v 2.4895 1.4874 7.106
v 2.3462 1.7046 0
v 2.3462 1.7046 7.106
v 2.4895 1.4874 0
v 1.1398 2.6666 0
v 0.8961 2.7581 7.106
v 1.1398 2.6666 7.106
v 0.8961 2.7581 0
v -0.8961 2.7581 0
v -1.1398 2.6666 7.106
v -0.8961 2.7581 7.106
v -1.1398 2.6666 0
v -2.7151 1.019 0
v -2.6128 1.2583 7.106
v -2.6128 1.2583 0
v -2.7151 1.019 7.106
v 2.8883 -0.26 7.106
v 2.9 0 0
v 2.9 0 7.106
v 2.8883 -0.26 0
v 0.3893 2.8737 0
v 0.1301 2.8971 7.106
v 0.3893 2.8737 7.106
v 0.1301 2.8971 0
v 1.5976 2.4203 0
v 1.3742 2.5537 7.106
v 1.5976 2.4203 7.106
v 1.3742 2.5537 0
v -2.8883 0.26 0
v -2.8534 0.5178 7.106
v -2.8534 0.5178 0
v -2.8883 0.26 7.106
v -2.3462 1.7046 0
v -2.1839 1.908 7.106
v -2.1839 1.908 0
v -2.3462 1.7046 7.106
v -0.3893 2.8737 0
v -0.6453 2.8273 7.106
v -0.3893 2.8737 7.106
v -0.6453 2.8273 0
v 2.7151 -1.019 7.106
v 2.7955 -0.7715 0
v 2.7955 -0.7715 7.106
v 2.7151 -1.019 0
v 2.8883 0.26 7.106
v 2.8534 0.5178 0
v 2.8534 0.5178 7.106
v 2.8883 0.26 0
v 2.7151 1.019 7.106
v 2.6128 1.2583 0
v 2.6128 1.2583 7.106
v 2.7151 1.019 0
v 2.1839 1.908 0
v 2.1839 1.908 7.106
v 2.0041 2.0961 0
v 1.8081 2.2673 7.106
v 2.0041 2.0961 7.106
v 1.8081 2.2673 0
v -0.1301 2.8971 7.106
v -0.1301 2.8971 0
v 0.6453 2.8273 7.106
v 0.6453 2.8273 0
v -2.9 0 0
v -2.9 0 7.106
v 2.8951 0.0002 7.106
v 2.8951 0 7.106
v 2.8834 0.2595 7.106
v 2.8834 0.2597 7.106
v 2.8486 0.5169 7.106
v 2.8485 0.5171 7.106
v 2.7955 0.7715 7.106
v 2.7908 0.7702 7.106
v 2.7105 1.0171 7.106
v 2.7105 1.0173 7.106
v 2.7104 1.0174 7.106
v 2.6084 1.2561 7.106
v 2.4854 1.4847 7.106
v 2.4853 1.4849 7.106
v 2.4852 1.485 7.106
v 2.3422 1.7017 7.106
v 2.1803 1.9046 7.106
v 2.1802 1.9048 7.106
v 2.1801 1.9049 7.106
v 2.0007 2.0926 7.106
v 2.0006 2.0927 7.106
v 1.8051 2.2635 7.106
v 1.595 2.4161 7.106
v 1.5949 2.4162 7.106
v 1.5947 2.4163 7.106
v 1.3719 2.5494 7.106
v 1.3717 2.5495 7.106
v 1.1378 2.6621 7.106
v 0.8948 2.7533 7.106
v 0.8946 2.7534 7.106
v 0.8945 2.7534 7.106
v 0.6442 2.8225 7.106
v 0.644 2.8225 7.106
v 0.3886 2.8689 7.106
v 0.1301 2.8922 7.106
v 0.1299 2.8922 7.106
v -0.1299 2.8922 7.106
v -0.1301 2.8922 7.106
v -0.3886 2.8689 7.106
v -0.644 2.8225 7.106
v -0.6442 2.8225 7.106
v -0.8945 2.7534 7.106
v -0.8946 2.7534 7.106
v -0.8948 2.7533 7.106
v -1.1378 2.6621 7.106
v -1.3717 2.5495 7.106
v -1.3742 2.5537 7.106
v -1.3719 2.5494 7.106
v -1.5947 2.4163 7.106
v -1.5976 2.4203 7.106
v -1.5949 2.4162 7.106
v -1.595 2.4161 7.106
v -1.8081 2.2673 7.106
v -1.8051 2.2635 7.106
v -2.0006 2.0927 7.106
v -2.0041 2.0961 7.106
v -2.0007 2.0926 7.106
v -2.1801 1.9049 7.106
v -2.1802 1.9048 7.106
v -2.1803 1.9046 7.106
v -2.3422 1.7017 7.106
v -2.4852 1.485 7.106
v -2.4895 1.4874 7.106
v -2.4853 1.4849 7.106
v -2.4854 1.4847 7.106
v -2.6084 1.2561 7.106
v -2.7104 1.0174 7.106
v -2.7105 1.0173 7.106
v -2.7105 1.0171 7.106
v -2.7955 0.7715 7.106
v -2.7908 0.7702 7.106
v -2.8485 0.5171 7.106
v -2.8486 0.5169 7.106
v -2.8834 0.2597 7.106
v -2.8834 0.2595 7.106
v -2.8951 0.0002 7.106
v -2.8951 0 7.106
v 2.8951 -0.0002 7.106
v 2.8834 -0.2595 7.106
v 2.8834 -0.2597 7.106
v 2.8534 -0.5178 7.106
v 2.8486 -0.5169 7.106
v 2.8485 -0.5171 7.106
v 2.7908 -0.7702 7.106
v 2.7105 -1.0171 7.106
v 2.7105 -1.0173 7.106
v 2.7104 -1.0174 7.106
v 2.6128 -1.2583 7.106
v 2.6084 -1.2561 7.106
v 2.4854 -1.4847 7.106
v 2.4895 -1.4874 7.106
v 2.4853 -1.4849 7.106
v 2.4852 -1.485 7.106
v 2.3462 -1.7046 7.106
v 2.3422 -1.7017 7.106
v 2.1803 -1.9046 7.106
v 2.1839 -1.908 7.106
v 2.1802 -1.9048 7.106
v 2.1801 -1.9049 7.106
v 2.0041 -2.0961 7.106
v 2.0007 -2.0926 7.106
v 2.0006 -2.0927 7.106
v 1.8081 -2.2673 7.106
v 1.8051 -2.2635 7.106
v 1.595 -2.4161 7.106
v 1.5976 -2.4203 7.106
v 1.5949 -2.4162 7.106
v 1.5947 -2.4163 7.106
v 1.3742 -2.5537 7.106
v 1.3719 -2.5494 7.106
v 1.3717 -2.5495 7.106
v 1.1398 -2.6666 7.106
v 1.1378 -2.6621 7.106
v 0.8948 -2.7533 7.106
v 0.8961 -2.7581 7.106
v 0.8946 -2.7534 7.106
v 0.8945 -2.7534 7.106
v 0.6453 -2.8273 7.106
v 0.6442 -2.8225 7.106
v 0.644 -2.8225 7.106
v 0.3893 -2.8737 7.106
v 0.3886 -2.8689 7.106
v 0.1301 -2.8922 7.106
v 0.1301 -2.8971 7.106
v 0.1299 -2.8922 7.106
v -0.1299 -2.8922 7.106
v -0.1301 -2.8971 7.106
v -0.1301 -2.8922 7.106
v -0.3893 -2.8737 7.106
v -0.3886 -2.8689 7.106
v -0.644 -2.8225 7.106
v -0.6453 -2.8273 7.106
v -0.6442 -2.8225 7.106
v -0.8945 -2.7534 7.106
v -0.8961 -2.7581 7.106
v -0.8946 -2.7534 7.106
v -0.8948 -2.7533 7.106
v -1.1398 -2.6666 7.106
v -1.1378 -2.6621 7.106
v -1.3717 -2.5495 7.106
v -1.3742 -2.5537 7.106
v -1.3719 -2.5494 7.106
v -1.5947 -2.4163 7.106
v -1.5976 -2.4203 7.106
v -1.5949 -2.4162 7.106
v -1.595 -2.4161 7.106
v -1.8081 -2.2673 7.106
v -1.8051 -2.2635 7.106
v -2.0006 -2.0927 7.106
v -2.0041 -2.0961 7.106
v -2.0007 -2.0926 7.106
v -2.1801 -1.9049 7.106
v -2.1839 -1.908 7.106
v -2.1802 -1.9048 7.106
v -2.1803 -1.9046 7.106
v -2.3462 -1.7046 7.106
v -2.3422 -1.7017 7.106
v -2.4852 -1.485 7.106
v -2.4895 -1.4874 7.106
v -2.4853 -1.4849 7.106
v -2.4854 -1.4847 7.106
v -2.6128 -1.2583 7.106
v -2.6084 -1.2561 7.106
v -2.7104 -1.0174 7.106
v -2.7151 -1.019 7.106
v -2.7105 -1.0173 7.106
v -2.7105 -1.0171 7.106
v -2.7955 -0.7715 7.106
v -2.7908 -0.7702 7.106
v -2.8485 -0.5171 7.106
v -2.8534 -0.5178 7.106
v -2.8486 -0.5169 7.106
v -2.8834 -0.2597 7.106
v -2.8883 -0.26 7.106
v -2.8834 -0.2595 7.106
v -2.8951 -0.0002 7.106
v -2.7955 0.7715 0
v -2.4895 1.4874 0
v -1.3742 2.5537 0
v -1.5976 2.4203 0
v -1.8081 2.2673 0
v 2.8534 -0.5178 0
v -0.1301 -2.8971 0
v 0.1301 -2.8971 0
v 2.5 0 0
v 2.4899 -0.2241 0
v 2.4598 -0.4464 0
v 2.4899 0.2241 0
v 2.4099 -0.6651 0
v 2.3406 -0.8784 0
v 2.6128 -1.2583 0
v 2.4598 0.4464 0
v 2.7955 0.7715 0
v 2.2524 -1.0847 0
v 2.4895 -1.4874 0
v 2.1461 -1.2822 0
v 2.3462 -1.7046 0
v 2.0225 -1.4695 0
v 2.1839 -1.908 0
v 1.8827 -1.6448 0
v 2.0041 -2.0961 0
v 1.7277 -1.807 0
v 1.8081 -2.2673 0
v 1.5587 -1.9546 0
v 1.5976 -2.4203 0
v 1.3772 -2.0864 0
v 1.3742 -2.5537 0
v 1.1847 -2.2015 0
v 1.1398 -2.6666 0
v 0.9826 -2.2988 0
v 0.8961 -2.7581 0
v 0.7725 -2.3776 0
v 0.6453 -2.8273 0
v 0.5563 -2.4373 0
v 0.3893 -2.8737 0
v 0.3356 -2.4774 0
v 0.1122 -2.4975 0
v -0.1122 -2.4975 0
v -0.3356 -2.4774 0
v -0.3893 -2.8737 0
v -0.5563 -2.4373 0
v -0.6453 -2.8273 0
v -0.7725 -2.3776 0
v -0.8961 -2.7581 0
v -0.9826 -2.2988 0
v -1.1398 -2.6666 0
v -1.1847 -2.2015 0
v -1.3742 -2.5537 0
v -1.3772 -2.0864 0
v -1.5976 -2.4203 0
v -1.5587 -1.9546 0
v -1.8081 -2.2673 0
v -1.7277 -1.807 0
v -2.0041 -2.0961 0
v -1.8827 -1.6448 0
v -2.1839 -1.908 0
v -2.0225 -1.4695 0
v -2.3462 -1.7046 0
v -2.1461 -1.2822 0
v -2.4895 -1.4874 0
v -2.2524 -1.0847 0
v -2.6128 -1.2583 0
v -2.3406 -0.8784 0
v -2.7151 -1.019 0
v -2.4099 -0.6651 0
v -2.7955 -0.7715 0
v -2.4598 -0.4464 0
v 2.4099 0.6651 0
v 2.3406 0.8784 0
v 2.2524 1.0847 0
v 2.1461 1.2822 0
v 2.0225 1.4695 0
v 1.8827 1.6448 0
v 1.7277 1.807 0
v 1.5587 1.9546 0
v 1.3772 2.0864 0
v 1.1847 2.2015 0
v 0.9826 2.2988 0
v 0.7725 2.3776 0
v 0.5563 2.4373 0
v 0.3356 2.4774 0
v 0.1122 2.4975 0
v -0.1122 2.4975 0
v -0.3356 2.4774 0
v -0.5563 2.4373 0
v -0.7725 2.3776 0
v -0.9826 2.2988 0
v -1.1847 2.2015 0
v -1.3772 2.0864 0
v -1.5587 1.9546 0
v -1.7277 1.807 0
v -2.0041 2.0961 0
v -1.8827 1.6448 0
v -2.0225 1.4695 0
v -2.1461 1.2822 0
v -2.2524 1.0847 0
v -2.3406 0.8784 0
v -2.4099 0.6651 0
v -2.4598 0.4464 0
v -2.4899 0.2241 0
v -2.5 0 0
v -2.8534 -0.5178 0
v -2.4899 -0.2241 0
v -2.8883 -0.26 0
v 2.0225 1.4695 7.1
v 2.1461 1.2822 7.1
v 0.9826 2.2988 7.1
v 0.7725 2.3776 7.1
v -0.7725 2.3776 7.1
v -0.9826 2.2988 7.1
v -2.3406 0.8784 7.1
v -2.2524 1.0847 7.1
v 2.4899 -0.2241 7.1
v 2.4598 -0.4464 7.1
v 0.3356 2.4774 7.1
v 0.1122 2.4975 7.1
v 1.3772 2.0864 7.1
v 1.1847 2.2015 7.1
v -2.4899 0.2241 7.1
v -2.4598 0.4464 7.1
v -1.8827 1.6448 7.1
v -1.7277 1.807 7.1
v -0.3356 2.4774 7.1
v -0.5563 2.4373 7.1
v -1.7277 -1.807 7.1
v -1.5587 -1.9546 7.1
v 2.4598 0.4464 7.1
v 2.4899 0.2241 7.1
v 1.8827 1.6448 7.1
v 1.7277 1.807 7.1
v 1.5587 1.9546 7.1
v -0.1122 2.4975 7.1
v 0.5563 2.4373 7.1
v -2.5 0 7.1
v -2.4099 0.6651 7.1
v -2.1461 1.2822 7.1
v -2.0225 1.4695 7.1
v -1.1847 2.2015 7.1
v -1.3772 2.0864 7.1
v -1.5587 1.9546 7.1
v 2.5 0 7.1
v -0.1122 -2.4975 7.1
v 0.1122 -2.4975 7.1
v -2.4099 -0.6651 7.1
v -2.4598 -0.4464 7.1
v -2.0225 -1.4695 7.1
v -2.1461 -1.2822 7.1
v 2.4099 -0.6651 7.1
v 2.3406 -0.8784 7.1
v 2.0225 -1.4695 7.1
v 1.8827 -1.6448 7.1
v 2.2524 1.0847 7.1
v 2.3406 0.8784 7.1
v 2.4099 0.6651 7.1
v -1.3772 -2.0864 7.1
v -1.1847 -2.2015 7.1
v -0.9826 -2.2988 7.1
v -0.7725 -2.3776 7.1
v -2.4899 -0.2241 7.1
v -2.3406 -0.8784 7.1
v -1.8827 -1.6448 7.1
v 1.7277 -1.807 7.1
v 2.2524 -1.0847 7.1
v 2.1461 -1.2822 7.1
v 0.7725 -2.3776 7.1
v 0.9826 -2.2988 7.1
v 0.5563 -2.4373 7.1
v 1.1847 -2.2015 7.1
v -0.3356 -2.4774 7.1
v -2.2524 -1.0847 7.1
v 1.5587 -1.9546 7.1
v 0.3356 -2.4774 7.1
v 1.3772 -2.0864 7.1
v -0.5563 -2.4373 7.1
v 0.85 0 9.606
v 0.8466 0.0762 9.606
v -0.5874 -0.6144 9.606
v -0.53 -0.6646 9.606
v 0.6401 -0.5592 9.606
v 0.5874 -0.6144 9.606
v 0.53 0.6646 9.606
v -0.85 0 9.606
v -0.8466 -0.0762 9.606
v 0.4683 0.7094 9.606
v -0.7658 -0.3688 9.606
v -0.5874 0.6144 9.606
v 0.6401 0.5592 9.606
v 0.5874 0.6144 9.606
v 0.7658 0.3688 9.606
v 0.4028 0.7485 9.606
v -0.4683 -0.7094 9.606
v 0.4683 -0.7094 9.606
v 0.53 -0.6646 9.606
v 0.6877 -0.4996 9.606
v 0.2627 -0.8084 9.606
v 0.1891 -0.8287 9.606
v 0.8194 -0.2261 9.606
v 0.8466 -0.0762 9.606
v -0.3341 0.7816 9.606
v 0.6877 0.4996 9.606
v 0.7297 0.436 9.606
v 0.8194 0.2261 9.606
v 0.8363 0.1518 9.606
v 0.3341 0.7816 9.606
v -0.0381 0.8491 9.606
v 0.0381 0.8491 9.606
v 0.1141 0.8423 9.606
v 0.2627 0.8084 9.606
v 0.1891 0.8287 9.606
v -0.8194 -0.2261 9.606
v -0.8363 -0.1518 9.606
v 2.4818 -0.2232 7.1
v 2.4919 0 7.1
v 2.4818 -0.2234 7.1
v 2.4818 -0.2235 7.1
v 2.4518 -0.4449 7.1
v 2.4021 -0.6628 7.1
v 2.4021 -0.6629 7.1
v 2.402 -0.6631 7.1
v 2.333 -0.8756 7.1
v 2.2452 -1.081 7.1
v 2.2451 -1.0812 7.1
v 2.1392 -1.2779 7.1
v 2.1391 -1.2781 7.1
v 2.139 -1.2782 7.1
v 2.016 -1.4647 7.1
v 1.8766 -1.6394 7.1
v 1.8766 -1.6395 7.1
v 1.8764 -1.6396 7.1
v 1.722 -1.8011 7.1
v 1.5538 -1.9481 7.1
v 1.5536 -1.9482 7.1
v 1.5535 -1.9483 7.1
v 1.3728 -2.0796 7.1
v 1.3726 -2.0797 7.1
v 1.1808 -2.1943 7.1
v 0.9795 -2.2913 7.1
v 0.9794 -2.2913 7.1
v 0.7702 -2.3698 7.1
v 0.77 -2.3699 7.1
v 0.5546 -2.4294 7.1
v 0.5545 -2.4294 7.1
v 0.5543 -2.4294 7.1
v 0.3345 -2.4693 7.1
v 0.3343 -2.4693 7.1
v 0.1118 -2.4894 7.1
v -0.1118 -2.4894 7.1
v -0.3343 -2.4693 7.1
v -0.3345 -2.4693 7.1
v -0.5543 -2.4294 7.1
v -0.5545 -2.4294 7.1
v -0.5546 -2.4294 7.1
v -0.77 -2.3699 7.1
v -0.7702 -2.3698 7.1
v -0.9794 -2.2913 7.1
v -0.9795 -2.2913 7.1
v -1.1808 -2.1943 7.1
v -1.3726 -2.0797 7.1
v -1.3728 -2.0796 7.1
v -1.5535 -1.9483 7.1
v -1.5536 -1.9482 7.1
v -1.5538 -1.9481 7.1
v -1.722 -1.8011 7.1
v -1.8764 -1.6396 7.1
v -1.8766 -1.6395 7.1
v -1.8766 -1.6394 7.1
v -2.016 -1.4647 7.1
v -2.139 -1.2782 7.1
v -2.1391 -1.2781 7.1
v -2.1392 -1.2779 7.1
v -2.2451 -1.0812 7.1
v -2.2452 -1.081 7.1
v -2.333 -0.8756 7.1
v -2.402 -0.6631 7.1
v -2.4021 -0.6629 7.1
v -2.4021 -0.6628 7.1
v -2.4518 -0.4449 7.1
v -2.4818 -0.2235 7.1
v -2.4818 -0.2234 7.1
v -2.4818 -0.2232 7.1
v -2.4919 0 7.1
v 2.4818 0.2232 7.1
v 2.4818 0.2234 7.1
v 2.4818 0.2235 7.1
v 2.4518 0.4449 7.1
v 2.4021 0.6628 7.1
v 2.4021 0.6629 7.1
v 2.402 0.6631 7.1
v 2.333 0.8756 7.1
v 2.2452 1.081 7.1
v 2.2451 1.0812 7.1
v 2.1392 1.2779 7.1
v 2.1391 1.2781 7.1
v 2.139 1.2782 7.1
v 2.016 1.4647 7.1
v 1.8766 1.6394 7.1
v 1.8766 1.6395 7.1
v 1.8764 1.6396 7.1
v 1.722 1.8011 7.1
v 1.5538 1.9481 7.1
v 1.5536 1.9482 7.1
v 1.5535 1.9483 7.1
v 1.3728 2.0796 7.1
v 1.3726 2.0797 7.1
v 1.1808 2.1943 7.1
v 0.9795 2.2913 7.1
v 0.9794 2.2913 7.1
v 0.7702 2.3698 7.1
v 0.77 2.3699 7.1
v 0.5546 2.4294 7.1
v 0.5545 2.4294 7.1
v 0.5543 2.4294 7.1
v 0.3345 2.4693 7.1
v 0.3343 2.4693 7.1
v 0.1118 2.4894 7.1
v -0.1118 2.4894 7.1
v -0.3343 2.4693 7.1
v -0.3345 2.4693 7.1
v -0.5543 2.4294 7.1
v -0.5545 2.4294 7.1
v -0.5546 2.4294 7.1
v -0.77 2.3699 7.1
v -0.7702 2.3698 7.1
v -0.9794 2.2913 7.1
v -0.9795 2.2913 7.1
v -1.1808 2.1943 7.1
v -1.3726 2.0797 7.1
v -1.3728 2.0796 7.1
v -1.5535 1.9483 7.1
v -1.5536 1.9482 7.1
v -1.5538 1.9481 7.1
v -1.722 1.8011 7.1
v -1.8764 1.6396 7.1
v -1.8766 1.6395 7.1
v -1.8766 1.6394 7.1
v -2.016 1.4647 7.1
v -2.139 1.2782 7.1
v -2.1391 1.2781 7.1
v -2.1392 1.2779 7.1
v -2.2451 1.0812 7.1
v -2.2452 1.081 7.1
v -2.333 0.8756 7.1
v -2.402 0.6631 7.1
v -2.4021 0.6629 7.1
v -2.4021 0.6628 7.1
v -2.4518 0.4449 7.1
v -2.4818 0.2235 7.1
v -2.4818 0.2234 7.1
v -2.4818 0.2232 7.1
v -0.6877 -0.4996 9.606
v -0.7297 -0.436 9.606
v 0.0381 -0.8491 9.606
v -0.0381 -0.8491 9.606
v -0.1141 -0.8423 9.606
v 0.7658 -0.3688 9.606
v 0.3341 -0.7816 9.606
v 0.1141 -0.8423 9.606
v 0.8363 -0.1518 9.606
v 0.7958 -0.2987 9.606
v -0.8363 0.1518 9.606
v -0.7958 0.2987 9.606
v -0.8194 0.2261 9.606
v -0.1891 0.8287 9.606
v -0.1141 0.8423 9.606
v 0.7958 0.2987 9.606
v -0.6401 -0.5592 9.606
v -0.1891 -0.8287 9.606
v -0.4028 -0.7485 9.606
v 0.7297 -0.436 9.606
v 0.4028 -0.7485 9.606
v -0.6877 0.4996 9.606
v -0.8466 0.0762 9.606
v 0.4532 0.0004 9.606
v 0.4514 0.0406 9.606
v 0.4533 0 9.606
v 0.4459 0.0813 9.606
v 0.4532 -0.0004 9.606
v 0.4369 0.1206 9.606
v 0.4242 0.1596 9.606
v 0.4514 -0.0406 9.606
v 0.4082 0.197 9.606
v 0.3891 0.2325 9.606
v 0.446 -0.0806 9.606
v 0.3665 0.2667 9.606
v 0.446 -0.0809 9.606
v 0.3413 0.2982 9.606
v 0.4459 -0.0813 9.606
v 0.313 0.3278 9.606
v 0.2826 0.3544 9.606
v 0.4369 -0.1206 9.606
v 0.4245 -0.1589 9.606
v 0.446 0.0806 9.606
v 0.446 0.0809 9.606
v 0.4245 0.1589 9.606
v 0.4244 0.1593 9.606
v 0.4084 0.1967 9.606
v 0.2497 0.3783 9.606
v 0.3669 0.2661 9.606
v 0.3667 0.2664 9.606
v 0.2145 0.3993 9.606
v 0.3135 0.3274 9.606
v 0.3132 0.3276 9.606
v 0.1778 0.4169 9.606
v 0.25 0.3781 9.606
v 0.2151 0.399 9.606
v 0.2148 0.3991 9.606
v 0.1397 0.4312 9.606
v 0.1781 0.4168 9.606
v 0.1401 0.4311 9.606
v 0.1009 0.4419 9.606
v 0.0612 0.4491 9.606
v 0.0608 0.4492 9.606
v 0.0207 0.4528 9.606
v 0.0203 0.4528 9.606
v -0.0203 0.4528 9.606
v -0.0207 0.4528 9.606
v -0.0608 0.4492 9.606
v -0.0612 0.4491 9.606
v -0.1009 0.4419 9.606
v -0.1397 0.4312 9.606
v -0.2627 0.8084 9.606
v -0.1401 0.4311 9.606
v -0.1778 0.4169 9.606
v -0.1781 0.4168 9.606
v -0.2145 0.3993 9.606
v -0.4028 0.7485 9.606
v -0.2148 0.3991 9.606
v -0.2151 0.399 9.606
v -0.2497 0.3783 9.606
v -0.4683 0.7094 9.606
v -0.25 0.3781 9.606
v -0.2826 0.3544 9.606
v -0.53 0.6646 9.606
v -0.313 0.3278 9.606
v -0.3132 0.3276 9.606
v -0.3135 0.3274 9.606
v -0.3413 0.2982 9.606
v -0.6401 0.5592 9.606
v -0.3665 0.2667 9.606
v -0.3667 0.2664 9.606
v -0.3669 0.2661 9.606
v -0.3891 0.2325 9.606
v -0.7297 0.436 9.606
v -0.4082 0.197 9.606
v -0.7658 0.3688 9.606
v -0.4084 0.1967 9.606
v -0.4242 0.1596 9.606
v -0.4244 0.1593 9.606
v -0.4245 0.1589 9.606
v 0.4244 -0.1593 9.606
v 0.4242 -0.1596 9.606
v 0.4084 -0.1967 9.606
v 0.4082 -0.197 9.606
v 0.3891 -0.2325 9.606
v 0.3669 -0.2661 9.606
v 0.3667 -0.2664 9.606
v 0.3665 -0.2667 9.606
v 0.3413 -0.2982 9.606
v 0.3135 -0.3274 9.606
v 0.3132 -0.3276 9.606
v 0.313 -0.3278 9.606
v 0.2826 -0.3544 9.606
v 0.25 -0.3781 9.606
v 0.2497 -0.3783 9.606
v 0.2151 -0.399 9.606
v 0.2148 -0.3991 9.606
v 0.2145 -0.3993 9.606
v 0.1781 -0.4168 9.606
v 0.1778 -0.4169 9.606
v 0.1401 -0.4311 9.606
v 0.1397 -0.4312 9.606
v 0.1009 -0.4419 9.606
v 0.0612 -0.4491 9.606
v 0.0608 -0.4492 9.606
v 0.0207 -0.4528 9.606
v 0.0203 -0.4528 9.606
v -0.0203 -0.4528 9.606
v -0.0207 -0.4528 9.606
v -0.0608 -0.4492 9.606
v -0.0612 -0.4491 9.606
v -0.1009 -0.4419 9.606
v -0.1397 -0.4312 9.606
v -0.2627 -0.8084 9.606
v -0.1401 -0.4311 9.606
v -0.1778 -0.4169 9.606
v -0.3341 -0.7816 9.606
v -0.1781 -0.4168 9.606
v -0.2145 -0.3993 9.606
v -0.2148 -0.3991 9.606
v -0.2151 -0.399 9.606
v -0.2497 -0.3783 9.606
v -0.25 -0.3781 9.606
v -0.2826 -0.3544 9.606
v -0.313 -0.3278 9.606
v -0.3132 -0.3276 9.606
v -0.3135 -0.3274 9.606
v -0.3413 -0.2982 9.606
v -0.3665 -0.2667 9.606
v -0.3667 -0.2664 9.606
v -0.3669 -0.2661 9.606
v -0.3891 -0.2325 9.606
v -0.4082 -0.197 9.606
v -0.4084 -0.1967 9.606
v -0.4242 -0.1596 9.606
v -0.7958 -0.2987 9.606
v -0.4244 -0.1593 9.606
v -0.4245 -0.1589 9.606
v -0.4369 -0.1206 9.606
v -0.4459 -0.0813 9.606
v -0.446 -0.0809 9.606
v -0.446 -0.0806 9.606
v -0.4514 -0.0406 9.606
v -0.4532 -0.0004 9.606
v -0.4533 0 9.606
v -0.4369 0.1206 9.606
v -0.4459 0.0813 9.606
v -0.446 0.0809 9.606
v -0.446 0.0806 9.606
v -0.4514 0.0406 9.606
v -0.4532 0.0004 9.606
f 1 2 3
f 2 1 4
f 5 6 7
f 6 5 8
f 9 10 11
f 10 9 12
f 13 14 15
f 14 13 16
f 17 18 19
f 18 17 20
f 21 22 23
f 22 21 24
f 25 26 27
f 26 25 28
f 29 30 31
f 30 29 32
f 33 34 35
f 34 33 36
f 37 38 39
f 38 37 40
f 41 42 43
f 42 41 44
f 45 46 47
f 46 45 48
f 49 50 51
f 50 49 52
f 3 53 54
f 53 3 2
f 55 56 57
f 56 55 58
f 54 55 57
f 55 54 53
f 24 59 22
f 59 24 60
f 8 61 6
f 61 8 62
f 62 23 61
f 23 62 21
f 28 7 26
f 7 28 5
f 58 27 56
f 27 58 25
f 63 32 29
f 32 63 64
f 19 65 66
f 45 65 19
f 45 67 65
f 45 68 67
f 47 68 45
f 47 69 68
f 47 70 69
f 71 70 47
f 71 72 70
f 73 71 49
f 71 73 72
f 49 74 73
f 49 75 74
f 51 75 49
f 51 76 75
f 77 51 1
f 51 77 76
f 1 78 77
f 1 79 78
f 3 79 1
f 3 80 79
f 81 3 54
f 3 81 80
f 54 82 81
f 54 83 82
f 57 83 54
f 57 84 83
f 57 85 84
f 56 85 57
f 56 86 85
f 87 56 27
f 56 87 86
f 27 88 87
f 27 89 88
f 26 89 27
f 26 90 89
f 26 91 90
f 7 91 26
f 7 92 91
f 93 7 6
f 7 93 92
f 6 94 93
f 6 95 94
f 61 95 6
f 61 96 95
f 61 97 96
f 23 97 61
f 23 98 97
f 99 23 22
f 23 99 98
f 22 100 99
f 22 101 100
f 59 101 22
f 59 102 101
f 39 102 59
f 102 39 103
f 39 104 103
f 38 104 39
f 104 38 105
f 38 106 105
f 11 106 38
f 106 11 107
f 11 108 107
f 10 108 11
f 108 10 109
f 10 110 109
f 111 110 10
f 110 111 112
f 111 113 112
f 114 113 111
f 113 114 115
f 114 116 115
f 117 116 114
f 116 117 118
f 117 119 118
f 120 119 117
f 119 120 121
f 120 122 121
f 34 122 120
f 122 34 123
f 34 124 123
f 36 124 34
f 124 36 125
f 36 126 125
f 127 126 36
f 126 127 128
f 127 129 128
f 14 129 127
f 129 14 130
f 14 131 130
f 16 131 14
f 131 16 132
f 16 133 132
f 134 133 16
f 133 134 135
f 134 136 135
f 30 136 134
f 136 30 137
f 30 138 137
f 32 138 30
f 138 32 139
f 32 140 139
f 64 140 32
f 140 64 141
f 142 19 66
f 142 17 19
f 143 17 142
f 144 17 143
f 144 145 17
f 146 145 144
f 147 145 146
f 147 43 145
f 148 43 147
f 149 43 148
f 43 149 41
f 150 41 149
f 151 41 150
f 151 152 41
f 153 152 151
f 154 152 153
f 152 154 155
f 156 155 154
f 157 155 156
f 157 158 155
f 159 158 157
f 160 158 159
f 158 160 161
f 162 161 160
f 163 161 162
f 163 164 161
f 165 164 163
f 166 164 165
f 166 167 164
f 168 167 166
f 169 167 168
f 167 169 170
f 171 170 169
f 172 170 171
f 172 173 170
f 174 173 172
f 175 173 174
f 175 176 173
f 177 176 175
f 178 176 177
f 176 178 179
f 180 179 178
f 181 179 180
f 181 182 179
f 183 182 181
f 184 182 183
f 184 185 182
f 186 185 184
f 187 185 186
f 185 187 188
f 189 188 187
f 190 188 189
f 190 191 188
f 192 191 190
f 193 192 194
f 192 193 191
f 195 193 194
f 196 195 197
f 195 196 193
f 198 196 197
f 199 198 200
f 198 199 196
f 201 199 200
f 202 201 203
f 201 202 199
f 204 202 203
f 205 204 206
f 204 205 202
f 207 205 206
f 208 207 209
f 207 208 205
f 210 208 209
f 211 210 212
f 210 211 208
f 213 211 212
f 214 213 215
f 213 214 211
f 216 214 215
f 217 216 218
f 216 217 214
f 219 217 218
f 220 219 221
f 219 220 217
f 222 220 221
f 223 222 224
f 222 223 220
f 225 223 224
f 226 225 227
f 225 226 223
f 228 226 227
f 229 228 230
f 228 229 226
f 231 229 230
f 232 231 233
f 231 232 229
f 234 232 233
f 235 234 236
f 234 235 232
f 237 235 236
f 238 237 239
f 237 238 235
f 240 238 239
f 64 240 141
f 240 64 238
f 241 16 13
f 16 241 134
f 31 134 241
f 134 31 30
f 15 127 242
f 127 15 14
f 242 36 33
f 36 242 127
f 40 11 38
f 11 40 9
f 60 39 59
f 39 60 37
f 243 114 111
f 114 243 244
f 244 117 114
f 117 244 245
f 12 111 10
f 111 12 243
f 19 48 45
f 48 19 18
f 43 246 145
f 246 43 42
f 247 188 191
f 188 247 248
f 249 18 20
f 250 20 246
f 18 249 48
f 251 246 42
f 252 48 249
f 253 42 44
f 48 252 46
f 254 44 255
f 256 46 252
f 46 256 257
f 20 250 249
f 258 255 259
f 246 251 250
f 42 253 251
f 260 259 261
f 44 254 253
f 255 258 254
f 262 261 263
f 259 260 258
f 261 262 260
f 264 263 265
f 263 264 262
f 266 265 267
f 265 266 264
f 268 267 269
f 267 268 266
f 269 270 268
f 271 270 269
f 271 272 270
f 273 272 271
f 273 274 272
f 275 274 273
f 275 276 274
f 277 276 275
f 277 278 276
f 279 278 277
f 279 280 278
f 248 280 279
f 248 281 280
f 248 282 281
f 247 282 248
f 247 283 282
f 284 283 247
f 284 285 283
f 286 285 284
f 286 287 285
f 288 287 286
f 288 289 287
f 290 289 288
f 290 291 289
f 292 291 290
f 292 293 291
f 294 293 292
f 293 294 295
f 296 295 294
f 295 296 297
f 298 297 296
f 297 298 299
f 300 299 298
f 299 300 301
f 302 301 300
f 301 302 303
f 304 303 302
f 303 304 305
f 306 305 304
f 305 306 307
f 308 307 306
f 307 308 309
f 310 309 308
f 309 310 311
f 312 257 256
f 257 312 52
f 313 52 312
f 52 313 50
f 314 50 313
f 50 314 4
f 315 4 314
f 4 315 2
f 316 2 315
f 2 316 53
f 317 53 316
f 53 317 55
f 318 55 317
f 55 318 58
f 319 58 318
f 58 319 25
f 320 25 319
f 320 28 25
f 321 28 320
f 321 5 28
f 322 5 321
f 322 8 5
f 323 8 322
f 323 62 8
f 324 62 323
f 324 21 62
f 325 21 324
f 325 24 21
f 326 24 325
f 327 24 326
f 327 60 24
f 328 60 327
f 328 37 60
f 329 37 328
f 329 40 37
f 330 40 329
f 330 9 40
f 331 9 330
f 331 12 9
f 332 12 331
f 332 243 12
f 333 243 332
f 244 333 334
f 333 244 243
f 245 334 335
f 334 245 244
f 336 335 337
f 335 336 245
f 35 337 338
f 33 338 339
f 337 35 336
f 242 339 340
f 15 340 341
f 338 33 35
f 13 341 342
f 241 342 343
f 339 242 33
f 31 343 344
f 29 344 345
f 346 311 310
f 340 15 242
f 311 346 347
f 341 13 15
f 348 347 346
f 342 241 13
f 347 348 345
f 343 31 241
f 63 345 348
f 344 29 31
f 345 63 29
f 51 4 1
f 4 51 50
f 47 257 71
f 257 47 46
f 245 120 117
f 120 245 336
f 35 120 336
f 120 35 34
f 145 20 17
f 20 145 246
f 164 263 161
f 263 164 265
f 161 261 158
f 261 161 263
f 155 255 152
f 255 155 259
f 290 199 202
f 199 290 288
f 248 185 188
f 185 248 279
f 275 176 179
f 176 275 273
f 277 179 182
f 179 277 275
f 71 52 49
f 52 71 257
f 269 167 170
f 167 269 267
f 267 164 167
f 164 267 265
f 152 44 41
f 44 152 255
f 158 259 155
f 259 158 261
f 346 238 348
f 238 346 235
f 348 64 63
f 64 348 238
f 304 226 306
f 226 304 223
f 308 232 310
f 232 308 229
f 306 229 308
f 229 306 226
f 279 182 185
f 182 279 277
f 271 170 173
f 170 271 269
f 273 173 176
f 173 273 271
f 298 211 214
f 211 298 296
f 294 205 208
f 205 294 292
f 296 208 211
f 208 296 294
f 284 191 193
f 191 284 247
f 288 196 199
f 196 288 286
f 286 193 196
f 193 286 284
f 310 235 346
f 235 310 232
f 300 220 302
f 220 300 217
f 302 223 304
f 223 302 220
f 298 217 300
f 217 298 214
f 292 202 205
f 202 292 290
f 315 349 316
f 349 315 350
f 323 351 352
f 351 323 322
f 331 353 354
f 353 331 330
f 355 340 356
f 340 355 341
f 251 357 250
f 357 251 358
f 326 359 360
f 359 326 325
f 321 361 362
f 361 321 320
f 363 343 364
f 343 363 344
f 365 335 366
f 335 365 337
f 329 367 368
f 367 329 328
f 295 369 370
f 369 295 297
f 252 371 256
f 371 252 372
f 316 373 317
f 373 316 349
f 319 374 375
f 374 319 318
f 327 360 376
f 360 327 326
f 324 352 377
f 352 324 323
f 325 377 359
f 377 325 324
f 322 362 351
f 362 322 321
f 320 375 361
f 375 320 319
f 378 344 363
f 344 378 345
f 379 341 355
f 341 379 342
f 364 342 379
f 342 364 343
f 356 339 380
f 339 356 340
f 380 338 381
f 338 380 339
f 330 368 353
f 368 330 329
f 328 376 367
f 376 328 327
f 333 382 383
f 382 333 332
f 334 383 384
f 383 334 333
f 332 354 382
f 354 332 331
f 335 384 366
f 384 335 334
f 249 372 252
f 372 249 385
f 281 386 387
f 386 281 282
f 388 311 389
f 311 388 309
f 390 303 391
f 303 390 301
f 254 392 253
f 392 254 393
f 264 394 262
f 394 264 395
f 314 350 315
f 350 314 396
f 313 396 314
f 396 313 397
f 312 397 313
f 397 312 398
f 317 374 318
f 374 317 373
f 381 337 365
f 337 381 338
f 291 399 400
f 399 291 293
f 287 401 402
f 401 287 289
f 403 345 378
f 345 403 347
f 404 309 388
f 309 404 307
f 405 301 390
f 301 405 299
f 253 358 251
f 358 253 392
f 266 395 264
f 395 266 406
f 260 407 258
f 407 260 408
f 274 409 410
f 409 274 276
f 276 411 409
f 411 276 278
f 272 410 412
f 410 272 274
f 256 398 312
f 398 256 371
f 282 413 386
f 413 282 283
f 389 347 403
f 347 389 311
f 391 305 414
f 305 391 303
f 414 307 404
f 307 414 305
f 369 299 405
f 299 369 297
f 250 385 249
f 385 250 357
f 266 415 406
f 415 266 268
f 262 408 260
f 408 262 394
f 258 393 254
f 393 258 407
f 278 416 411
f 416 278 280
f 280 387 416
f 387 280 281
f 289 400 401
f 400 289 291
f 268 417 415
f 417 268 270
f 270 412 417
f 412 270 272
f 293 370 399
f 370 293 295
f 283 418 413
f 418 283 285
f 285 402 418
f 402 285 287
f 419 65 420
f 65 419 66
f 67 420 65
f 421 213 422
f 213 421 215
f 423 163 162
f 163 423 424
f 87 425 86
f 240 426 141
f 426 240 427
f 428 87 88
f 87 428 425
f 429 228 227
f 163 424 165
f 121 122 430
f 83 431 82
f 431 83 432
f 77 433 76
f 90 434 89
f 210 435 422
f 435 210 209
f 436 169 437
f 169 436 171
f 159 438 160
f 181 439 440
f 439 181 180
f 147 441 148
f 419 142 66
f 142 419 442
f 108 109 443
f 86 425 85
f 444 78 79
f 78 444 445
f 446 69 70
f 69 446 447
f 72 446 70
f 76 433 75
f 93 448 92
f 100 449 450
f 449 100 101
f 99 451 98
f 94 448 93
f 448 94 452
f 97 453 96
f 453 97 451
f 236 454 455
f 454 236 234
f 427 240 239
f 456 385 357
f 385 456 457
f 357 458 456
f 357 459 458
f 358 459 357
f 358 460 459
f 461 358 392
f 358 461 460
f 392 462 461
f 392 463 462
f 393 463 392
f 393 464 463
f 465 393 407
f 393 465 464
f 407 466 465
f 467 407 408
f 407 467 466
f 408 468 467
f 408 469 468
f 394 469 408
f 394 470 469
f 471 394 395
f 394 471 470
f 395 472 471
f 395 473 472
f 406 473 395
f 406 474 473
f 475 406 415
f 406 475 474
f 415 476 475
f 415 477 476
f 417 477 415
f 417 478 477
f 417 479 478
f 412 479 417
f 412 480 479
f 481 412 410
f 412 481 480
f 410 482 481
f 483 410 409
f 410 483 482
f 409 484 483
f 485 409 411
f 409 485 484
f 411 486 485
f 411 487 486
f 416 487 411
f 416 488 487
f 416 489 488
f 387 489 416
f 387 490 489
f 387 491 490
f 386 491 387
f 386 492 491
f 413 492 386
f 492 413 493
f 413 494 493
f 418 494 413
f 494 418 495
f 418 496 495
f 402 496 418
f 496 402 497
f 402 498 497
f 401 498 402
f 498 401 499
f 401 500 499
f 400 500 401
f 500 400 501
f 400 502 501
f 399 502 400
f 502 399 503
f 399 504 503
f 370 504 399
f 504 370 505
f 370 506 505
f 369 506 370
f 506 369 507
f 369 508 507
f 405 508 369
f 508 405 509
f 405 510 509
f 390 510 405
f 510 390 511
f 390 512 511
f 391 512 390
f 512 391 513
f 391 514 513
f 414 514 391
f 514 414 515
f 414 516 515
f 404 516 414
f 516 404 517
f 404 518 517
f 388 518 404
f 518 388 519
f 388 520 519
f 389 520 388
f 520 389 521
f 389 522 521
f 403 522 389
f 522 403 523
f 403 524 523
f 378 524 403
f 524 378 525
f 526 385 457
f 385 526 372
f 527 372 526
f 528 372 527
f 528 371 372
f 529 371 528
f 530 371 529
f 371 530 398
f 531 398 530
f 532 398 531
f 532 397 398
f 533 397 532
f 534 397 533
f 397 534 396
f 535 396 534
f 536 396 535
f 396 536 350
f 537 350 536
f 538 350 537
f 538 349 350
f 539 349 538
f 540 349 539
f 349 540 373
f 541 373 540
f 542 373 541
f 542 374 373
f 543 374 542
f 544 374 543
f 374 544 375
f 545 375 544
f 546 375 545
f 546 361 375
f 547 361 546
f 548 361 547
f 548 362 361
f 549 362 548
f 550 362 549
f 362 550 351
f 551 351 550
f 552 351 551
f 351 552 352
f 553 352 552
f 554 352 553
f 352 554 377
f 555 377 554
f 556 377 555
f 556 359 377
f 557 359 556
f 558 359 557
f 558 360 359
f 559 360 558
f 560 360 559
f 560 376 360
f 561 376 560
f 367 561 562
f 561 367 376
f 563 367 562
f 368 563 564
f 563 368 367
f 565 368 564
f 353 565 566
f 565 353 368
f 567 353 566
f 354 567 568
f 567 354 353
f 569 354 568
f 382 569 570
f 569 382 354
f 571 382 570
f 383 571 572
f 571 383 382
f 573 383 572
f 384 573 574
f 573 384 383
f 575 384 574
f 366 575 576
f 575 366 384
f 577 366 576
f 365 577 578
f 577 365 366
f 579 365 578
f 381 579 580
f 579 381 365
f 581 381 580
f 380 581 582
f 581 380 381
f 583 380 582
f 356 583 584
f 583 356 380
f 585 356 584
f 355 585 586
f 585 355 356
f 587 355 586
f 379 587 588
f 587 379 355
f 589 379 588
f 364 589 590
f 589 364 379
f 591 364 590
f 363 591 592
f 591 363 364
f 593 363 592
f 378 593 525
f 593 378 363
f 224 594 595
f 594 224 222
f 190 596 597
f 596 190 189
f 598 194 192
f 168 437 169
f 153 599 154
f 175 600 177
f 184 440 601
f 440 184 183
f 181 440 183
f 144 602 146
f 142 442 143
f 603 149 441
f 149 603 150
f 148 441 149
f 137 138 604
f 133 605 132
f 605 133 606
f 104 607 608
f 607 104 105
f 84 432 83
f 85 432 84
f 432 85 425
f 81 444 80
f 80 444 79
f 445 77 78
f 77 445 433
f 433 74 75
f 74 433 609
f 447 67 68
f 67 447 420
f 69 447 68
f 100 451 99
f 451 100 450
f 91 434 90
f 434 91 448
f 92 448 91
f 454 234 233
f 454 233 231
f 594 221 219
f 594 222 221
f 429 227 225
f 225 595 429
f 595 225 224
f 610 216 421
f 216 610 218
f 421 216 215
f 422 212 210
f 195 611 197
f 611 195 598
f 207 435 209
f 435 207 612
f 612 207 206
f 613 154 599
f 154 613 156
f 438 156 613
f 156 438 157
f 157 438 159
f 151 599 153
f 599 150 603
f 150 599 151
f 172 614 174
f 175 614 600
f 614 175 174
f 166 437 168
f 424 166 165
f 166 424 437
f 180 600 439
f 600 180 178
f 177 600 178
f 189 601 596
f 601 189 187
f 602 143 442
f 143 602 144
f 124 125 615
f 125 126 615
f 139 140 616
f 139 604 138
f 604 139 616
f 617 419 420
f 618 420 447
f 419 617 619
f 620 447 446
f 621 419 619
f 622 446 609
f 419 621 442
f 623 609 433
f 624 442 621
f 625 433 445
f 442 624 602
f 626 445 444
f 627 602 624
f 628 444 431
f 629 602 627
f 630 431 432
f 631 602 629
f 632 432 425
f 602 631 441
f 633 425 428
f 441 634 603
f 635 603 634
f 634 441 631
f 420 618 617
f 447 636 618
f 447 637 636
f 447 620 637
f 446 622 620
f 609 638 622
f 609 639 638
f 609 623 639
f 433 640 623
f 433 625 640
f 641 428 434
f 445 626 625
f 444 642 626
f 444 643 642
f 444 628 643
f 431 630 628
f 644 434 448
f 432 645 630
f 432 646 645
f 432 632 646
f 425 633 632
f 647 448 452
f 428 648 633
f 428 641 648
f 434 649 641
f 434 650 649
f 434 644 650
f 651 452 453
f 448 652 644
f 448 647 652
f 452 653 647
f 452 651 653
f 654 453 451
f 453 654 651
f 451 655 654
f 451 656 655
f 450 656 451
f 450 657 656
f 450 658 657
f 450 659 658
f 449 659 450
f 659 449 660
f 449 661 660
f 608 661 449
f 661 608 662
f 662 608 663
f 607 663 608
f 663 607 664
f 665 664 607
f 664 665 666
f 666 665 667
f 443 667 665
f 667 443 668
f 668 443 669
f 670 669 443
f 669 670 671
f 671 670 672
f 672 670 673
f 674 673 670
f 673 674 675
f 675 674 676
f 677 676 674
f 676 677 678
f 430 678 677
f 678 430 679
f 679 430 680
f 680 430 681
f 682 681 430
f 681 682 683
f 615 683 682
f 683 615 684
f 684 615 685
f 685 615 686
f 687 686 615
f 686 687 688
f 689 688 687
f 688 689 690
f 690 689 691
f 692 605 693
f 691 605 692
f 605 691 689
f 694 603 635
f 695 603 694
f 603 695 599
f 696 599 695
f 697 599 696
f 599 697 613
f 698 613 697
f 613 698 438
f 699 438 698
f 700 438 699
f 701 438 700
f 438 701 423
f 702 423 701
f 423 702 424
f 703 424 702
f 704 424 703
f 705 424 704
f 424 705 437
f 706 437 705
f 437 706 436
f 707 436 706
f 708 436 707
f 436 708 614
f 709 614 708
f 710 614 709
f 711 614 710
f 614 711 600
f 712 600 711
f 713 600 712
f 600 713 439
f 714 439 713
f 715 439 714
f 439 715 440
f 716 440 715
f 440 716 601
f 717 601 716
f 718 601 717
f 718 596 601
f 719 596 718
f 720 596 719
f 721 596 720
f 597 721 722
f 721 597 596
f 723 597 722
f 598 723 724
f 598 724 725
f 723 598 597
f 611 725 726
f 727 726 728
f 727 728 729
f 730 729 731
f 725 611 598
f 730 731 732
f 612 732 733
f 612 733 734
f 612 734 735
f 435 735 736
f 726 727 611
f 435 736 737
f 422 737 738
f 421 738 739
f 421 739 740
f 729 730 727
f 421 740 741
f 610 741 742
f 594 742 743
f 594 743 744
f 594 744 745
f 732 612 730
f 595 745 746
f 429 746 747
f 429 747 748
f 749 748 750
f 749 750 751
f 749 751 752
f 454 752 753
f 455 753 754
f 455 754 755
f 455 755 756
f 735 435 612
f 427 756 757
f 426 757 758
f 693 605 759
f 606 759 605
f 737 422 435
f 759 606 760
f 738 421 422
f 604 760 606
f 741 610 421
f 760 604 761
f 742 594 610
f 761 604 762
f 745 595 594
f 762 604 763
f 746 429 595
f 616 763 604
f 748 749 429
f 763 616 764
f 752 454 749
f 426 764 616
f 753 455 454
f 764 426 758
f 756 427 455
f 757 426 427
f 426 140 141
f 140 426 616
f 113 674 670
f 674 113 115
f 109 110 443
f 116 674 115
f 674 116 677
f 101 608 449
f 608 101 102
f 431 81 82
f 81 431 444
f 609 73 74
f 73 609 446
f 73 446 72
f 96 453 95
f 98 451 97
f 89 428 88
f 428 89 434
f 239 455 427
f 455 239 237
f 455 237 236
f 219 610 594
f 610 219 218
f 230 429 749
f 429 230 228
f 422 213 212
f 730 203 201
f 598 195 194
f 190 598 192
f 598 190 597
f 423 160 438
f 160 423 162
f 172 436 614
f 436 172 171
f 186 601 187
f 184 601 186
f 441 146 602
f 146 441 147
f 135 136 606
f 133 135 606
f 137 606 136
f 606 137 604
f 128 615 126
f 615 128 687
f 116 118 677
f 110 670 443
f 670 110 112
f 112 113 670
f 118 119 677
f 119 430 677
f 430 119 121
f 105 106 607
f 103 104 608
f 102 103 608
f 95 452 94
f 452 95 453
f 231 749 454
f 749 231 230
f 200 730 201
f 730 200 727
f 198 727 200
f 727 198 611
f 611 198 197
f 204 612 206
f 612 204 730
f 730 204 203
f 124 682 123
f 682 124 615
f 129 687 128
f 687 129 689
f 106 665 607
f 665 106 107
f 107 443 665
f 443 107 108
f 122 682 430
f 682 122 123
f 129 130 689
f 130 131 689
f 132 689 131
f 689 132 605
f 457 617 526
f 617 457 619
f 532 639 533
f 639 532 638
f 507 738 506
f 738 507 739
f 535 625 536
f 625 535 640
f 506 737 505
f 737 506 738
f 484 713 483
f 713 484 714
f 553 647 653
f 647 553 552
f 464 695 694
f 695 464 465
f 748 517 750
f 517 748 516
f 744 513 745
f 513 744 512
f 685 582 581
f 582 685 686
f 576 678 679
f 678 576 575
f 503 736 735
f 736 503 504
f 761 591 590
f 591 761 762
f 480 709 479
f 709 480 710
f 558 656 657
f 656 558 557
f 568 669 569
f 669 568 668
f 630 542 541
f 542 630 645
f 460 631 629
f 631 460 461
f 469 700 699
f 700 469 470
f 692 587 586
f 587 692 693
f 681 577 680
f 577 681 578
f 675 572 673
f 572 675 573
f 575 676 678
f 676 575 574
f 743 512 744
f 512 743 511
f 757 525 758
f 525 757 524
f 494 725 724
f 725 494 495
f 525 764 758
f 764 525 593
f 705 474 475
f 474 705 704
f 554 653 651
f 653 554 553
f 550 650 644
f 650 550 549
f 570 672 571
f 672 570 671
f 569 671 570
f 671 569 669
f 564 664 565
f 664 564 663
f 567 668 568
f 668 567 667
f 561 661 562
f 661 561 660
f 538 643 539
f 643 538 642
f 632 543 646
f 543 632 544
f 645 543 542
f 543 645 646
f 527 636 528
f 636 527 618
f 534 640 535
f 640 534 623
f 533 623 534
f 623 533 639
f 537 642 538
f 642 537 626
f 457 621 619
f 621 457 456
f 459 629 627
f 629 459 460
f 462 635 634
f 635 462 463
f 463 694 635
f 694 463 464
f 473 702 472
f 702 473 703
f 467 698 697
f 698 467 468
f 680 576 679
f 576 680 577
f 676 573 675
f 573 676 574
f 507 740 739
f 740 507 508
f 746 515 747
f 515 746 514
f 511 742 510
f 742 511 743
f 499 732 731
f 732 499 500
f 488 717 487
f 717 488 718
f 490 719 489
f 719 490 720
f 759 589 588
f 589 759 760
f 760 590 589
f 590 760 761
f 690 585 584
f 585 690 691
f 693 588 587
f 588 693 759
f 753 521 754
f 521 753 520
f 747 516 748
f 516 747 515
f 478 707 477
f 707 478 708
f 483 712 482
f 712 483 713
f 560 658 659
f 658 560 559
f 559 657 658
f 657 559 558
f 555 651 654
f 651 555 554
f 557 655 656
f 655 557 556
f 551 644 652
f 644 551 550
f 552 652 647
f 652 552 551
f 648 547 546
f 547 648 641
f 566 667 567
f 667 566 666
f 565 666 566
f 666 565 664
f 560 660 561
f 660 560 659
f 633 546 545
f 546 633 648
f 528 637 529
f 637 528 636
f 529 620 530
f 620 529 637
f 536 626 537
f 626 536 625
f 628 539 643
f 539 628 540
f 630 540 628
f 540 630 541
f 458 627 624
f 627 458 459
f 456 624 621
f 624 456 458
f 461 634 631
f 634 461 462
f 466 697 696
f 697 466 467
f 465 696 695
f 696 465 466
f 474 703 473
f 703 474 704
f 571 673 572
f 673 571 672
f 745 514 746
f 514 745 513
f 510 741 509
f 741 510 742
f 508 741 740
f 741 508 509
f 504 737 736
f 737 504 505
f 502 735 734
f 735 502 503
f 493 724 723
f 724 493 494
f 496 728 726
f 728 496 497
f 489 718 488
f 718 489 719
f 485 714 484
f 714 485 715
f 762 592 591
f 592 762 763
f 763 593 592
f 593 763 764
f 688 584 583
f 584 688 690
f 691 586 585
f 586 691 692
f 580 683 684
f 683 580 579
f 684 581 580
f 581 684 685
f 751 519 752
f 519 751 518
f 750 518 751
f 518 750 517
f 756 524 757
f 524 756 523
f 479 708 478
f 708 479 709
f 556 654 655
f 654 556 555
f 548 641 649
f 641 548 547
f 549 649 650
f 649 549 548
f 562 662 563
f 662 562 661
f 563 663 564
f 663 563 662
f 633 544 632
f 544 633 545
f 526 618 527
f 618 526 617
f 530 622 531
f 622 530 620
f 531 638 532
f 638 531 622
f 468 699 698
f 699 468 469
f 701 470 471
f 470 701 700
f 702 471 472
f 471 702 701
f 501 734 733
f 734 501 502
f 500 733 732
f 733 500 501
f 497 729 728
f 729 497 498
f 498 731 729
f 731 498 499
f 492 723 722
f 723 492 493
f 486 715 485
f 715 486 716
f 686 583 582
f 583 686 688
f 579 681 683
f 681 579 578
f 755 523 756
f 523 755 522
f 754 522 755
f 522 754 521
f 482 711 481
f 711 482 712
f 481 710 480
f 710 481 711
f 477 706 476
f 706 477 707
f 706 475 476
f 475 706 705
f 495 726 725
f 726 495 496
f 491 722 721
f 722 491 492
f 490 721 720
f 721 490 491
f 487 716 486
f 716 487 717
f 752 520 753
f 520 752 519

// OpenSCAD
// file: ProbeTipProtectLib.scad
////////////////////////////////////////////////////////////////
// Scope probe tip protection
// By Nuno João from https://EmbeddedDreams.com
// Released 2020 under Creative Commons 3.0
//
// This creates a cover to protect a scope's probe tip from
// shorting to nearby components when probing a board.
// Scope probes include this accessory, but it can be lost,
// and is tipically larger than I would like them to be...
//


// Parameter defaults are for Rigol RP2200 probes.
module ProbeTipProtection (
        InnerDiameter = 5.00,
        BodyLength = 7.10,
        ConeLength = 2.50,
        TipLength = 0.80,
        TipHoleDiameter = 0.90,
        WallThickness = 0.4
)  {
    // Precalcs and other constants
    cType = 0;
    cHeight = 1;
    cDiameter = 2;
    cPreviousDiameter = 3;
    cSmoothness = 70;

    // Tip definition, by vertical segments. Types:
    //  0: cylinder
    //  1: cone, a linear transition between 2 adjacent segments
    //  2: flat, diameter is a center hole's diameter
    cSegments = [
    //  type  height       in/hole-diam      prevDiam
        [ 0,  BodyLength,  InnerDiameter                   ],
        [ 1,  ConeLength,  TipHoleDiameter,  InnerDiameter ],
        [ 0,   TipLength,  TipHoleDiameter                 ],
    ];

    // OpenSCAD's stupid concept of "variable" forces me to this (and more):
    function GetBaseHeight(idx) =
        idx < 0 ?
            0 :
            (cSegments[idx][cHeight] + GetBaseHeight(idx - 1));

    limit = len(cSegments) - 1;
    for (idx = [0 : limit])  {
        section = cSegments[idx];
        type = section[cType];
        height = section[cHeight];
        diameter = section[cDiameter];
        fn = cSmoothness;

        if (height > 0.0)  {
            if (type == 0)  {
                translate([0, 0, GetBaseHeight(idx-1)])
                    difference()  {
                        cylinder(h = height+0.006, d = diameter + WallThickness*2, $fn=fn);
                        translate([0, 0, -0.01])
                            cylinder(h = height * 0.01 + 0.02, d = diameter, $fn=fn);
                            cylinder(h = height + 0.02, d = diameter, $fn=fn);
                    }
            }
            else if (type == 1)  {
                prevDiam = section[cPreviousDiameter];
                outDiam = diameter + WallThickness*2;
                outPrevDiam = prevDiam + WallThickness*2;
                translate([0, 0, GetBaseHeight(idx-1)])
                    difference()  {
                        cylinder(h = height+0.006, d1 = outPrevDiam, d2 = outDiam, $fn=fn);
                        translate([0, 0, -0.01])
                            cylinder(h = height + 0.02, d1 = prevDiam,
                                                        d2 = diameter, $fn=fn);
                    }
            }
            else if (type == 2)  {
                holeDiam = section[cDiameter2];
                echo("hole diam: ", holeDiam);
                translate([0, 0, GetBaseHeight(idx-1) - WallThickness])
                    difference()  {
                        // The flat top slab
                        cylinder(h = WallThickness+0.006, d = diameter + 0.6, $fn=fn);
                        // Hole in the center
                        translate([0, 0, -0.005])
                            cylinder(h = WallThickness*2 + 0.01, d = holeDiam, $fn=fn);
                    }
            }
            else  {
                echo("***** UPS!! Unkonwn type!");
            }
        }
    }
}


/// Test
//ProbeTipProtection();
// main file
include <ProbeTipProtectLib.scad>;

// Build it!
ProbeTipProtection(
        InnerDiameter = 5.00,
        BodyLength = 7.10,
        ConeLength = 2.50,
        TipLength = 0.00,
        TipHoleDiameter = 0.90
);
